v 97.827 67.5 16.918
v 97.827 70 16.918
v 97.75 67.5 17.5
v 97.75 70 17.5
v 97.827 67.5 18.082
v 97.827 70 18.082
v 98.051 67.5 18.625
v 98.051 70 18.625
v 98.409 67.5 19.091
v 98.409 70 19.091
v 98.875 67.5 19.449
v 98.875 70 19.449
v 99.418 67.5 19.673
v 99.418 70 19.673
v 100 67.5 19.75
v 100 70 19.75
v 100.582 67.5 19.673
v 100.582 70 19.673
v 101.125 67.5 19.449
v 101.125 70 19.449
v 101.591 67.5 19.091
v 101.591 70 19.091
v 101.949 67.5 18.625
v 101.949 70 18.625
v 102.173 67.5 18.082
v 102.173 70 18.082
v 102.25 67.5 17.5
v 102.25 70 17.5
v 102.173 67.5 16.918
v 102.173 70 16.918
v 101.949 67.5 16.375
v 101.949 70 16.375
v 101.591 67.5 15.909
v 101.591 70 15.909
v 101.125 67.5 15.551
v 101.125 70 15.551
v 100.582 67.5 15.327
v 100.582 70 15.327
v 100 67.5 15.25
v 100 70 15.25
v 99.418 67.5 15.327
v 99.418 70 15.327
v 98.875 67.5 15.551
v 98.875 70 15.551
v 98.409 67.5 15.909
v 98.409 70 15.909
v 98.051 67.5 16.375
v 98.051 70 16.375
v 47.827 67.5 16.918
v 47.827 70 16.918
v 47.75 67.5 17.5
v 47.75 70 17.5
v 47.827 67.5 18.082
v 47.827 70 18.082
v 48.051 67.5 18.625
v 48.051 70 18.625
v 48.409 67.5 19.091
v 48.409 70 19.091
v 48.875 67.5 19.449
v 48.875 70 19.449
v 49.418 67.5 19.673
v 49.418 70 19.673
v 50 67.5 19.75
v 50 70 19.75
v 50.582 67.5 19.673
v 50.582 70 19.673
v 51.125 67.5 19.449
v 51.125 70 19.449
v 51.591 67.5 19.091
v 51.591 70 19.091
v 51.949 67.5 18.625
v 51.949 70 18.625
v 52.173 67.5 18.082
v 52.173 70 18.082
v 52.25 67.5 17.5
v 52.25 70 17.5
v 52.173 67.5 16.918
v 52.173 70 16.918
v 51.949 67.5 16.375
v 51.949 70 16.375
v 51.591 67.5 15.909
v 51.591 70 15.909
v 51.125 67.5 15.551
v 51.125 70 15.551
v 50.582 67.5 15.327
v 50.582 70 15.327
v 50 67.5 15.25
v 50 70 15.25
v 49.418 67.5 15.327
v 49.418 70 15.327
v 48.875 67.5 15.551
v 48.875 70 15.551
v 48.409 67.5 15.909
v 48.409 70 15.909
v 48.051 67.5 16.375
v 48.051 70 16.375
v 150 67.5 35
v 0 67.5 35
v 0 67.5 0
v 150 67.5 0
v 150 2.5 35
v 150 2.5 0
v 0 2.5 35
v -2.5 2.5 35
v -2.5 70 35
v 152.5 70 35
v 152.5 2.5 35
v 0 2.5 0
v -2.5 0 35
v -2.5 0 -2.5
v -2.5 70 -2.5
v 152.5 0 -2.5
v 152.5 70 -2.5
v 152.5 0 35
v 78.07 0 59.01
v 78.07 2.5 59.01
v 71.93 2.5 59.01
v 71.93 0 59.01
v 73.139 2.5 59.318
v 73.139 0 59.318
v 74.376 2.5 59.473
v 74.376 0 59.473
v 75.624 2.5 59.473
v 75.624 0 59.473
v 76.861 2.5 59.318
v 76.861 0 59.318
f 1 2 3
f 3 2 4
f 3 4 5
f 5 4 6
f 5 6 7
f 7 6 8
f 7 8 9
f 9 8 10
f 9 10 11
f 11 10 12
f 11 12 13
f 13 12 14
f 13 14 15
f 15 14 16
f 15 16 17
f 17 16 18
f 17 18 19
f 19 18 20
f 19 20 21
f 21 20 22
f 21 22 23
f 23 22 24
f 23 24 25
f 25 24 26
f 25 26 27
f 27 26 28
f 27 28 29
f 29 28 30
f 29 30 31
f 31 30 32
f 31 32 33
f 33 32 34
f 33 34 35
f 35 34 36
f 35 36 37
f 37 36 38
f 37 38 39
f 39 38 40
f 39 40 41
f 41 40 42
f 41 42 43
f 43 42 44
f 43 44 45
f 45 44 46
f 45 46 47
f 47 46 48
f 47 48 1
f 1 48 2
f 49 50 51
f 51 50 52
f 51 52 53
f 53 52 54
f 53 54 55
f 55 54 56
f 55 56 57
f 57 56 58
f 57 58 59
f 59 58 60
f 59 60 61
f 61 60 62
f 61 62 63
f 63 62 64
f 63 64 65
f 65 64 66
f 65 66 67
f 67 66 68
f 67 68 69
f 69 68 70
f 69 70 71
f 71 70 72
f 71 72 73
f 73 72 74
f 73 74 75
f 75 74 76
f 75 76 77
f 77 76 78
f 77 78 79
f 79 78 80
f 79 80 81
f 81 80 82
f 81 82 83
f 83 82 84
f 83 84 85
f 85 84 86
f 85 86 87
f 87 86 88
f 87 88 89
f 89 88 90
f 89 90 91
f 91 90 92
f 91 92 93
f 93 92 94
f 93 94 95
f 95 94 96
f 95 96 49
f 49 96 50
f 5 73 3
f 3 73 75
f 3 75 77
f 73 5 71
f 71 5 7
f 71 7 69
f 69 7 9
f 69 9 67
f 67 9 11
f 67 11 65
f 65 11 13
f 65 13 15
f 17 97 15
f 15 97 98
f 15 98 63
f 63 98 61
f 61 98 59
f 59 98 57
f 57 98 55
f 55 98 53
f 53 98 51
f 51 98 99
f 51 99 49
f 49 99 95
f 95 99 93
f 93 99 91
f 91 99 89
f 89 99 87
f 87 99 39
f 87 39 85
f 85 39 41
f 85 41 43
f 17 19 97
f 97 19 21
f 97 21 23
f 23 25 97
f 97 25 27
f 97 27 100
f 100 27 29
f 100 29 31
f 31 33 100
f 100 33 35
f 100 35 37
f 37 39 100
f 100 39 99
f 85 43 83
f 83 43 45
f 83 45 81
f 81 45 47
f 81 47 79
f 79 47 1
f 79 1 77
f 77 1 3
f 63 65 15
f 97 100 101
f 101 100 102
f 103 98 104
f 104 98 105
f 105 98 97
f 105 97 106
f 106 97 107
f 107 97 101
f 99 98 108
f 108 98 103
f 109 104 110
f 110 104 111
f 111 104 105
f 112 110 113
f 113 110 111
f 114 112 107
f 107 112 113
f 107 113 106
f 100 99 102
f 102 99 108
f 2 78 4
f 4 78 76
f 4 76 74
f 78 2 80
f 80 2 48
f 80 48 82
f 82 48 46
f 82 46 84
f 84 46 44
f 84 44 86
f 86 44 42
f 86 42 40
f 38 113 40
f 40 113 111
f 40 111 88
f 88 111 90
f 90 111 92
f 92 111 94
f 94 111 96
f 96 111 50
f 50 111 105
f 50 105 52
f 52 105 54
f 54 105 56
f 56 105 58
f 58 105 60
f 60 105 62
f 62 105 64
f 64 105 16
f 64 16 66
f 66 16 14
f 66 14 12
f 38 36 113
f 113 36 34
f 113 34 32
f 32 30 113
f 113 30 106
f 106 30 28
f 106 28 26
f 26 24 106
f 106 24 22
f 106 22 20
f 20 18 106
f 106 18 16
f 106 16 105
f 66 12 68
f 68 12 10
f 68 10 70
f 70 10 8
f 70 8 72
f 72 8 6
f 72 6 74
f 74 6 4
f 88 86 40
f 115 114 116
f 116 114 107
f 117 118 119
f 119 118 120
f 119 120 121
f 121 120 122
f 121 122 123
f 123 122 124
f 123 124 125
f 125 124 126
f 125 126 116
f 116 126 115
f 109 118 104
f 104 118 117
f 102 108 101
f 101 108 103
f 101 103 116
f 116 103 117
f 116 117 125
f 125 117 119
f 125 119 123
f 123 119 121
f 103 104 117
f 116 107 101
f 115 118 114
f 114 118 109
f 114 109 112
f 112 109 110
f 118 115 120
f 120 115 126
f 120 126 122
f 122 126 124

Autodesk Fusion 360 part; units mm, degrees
sketch "Esquisse1" plane through (0, 0, 0) normal (0, 1, 0) x (1, 0, 0)
  line L0 (0, 0) -> (150, 0)
  line L1 (150, 0) -> (150, -35)
  line L2 (150, -35) -> (0, -35)
  line L3 (0, -35) -> (0, 0)
  line L4 (75, -35) -> (75, -60) construction
  line L5 (0, 0) -> (150, 0)
  line L6 (150, 0) -> (150, 2.5)
  line L7 (150, 2.5) -> (0, 2.5)
  line L8 (0, 2.5) -> (0, 0)
  line L9 (150, -35) -> (152.5, -35)
  line L10 (152.5, -35) -> (152.5, 2.5)
  line L11 (152.5, 2.5) -> (150, 2.5)
  line L12 (150, 2.5) -> (150, -35)
  line L13 (0, -35) -> (-2.5, -35)
  line L14 (-2.5, -35) -> (-2.5, 2.5)
  line L15 (-2.5, 2.5) -> (0, 2.5)
  line L16 (0, 2.5) -> (0, -35)
  line L17 (-2.5, -35) -> (71.93, -59.0097)
  line L18 (78.07, -59.0097) -> (152.5, -35)
  arc A0 (71.93, -59.0097) -> (78.07, -59.0097) centre (75, -49.4926) ccw
  point P0 (75, -35)
  dimension "d6" = 150
  dimension "d7" = 35
  dimension "d8" = 25
  dimension "d13" = 150
  dimension "d14" = 2.5
  dimension "d15" = 2.5
  dimension "d16" = 37.5
  dimension "d17" = 2.5
  dimension "d18" = 37.5
  dimension "d19" = 10
extrude "Extrusion2" add sketch "Esquisse1" along normal blind 2.5 contours L0 L1 L2 L3 L5 L12 L16 | L2 L9 L13 L17 L18 A0
extrude "Extrusion3" add sketch "Esquisse1" along normal blind 70 contours L0 L5 L6 L7 L8 L12 L16 | L3 L8 L13 L14 L15 L16 | L1 L6 L9 L10 L11 L12
ref_plane "Plan de construction1" through (75, 70, 16.25) normal (0, 1, 0) x (0, 0, 1)
sketch "Esquisse2" plane through (75, 70, 16.25) normal (0, 1, 0) x (1, 0, 0)
  line L0 (-75, 16.25) -> (-75, -18.75)
  line L1 (-75, -18.75) -> (-77.5, -18.75)
  line L2 (-77.5, -18.75) -> (-3.07, -42.7597)
  arc A0 (-3.07, -42.7597) -> (3.07, -42.7597) centre (0, -33.2426) ccw
  line L3 (3.07, -42.7597) -> (77.5, -18.75)
  line L4 (77.5, -18.75) -> (75, -18.75)
  line L5 (75, -18.75) -> (75, 16.25)
  line L6 (75, 16.25) -> (-75, 16.25)
  line L7 (75, -18.75) -> (-75, -18.75)
  line L8 (-75, -18.75) -> (-75, 16.25)
  line L9 (-75, 16.25) -> (75, 16.25)
  line L10 (75, 16.25) -> (75, -18.75)
  line L11 (75, -1.25) -> (-75, -1.25) construction
  line L12 (75, -1.25) -> (25, -1.25) construction
  line L13 (-75, -1.25) -> (-25, -1.25) construction
  circle A1 centre (25, -1.25) radius 2.25
  circle A2 centre (-25, -1.25) radius 2.25
  point P0 (75, -1.25)
  point P1 (-75, -1.25)
  dimension "d27" = 50
  dimension "d28" = 50
  dimension "d30" = 4.5
  dimension "d31" = 4.5
extrude "Extrusion4" add sketch "Esquisse2" against normal blind 2.5 contours L0 L5 L6 L7 L8 L9 L10 | A1 | A2
extrude "Extrusion5" cut sketch "Esquisse2" against normal blind 2.5 contours A1 | A2
equation "bagWidth = 150 mm"
equation "bagThickness = 65 mm"
equation "dispenserBorderHeight = 35 mm"
equation "dispenserTriangleHeight = 25 mm"
equation "dispenserThickness = 2.5 mm"
equation "d6 = bagWidth"
equation "d7 = dispenserBorderHeight"
equation "d8 = dispenserTriangleHeight"
equation "dispenserTriangleRoundCorner = 10 mm"
equation "d13 = bagWidth"
equation "d14 = dispenserThickness"
equation "d15 = dispenserThickness"
equation "d16 = dispenserBorderHeight + dispenserThickness"
equation "d17 = dispenserThickness"
equation "d18 = dispenserBorderHeight + dispenserThickness"
equation "d19 = dispenserTriangleRoundCorner"
equation "d20 = dispenserThickness"
equation "d22 = ( 2 * dispenserThickness ) + bagThickness"
equation "d25 = -dispenserThickness"
equation "d27 = bagWidth / 3"
equation "d28 = bagWidth / 3"
equation "screwHoleDiameter = 4.5 mm"
equation "d30 = screwHoleDiameter"
equation "d31 = screwHoleDiameter"
equation "d32 = -dispenserThickness"
